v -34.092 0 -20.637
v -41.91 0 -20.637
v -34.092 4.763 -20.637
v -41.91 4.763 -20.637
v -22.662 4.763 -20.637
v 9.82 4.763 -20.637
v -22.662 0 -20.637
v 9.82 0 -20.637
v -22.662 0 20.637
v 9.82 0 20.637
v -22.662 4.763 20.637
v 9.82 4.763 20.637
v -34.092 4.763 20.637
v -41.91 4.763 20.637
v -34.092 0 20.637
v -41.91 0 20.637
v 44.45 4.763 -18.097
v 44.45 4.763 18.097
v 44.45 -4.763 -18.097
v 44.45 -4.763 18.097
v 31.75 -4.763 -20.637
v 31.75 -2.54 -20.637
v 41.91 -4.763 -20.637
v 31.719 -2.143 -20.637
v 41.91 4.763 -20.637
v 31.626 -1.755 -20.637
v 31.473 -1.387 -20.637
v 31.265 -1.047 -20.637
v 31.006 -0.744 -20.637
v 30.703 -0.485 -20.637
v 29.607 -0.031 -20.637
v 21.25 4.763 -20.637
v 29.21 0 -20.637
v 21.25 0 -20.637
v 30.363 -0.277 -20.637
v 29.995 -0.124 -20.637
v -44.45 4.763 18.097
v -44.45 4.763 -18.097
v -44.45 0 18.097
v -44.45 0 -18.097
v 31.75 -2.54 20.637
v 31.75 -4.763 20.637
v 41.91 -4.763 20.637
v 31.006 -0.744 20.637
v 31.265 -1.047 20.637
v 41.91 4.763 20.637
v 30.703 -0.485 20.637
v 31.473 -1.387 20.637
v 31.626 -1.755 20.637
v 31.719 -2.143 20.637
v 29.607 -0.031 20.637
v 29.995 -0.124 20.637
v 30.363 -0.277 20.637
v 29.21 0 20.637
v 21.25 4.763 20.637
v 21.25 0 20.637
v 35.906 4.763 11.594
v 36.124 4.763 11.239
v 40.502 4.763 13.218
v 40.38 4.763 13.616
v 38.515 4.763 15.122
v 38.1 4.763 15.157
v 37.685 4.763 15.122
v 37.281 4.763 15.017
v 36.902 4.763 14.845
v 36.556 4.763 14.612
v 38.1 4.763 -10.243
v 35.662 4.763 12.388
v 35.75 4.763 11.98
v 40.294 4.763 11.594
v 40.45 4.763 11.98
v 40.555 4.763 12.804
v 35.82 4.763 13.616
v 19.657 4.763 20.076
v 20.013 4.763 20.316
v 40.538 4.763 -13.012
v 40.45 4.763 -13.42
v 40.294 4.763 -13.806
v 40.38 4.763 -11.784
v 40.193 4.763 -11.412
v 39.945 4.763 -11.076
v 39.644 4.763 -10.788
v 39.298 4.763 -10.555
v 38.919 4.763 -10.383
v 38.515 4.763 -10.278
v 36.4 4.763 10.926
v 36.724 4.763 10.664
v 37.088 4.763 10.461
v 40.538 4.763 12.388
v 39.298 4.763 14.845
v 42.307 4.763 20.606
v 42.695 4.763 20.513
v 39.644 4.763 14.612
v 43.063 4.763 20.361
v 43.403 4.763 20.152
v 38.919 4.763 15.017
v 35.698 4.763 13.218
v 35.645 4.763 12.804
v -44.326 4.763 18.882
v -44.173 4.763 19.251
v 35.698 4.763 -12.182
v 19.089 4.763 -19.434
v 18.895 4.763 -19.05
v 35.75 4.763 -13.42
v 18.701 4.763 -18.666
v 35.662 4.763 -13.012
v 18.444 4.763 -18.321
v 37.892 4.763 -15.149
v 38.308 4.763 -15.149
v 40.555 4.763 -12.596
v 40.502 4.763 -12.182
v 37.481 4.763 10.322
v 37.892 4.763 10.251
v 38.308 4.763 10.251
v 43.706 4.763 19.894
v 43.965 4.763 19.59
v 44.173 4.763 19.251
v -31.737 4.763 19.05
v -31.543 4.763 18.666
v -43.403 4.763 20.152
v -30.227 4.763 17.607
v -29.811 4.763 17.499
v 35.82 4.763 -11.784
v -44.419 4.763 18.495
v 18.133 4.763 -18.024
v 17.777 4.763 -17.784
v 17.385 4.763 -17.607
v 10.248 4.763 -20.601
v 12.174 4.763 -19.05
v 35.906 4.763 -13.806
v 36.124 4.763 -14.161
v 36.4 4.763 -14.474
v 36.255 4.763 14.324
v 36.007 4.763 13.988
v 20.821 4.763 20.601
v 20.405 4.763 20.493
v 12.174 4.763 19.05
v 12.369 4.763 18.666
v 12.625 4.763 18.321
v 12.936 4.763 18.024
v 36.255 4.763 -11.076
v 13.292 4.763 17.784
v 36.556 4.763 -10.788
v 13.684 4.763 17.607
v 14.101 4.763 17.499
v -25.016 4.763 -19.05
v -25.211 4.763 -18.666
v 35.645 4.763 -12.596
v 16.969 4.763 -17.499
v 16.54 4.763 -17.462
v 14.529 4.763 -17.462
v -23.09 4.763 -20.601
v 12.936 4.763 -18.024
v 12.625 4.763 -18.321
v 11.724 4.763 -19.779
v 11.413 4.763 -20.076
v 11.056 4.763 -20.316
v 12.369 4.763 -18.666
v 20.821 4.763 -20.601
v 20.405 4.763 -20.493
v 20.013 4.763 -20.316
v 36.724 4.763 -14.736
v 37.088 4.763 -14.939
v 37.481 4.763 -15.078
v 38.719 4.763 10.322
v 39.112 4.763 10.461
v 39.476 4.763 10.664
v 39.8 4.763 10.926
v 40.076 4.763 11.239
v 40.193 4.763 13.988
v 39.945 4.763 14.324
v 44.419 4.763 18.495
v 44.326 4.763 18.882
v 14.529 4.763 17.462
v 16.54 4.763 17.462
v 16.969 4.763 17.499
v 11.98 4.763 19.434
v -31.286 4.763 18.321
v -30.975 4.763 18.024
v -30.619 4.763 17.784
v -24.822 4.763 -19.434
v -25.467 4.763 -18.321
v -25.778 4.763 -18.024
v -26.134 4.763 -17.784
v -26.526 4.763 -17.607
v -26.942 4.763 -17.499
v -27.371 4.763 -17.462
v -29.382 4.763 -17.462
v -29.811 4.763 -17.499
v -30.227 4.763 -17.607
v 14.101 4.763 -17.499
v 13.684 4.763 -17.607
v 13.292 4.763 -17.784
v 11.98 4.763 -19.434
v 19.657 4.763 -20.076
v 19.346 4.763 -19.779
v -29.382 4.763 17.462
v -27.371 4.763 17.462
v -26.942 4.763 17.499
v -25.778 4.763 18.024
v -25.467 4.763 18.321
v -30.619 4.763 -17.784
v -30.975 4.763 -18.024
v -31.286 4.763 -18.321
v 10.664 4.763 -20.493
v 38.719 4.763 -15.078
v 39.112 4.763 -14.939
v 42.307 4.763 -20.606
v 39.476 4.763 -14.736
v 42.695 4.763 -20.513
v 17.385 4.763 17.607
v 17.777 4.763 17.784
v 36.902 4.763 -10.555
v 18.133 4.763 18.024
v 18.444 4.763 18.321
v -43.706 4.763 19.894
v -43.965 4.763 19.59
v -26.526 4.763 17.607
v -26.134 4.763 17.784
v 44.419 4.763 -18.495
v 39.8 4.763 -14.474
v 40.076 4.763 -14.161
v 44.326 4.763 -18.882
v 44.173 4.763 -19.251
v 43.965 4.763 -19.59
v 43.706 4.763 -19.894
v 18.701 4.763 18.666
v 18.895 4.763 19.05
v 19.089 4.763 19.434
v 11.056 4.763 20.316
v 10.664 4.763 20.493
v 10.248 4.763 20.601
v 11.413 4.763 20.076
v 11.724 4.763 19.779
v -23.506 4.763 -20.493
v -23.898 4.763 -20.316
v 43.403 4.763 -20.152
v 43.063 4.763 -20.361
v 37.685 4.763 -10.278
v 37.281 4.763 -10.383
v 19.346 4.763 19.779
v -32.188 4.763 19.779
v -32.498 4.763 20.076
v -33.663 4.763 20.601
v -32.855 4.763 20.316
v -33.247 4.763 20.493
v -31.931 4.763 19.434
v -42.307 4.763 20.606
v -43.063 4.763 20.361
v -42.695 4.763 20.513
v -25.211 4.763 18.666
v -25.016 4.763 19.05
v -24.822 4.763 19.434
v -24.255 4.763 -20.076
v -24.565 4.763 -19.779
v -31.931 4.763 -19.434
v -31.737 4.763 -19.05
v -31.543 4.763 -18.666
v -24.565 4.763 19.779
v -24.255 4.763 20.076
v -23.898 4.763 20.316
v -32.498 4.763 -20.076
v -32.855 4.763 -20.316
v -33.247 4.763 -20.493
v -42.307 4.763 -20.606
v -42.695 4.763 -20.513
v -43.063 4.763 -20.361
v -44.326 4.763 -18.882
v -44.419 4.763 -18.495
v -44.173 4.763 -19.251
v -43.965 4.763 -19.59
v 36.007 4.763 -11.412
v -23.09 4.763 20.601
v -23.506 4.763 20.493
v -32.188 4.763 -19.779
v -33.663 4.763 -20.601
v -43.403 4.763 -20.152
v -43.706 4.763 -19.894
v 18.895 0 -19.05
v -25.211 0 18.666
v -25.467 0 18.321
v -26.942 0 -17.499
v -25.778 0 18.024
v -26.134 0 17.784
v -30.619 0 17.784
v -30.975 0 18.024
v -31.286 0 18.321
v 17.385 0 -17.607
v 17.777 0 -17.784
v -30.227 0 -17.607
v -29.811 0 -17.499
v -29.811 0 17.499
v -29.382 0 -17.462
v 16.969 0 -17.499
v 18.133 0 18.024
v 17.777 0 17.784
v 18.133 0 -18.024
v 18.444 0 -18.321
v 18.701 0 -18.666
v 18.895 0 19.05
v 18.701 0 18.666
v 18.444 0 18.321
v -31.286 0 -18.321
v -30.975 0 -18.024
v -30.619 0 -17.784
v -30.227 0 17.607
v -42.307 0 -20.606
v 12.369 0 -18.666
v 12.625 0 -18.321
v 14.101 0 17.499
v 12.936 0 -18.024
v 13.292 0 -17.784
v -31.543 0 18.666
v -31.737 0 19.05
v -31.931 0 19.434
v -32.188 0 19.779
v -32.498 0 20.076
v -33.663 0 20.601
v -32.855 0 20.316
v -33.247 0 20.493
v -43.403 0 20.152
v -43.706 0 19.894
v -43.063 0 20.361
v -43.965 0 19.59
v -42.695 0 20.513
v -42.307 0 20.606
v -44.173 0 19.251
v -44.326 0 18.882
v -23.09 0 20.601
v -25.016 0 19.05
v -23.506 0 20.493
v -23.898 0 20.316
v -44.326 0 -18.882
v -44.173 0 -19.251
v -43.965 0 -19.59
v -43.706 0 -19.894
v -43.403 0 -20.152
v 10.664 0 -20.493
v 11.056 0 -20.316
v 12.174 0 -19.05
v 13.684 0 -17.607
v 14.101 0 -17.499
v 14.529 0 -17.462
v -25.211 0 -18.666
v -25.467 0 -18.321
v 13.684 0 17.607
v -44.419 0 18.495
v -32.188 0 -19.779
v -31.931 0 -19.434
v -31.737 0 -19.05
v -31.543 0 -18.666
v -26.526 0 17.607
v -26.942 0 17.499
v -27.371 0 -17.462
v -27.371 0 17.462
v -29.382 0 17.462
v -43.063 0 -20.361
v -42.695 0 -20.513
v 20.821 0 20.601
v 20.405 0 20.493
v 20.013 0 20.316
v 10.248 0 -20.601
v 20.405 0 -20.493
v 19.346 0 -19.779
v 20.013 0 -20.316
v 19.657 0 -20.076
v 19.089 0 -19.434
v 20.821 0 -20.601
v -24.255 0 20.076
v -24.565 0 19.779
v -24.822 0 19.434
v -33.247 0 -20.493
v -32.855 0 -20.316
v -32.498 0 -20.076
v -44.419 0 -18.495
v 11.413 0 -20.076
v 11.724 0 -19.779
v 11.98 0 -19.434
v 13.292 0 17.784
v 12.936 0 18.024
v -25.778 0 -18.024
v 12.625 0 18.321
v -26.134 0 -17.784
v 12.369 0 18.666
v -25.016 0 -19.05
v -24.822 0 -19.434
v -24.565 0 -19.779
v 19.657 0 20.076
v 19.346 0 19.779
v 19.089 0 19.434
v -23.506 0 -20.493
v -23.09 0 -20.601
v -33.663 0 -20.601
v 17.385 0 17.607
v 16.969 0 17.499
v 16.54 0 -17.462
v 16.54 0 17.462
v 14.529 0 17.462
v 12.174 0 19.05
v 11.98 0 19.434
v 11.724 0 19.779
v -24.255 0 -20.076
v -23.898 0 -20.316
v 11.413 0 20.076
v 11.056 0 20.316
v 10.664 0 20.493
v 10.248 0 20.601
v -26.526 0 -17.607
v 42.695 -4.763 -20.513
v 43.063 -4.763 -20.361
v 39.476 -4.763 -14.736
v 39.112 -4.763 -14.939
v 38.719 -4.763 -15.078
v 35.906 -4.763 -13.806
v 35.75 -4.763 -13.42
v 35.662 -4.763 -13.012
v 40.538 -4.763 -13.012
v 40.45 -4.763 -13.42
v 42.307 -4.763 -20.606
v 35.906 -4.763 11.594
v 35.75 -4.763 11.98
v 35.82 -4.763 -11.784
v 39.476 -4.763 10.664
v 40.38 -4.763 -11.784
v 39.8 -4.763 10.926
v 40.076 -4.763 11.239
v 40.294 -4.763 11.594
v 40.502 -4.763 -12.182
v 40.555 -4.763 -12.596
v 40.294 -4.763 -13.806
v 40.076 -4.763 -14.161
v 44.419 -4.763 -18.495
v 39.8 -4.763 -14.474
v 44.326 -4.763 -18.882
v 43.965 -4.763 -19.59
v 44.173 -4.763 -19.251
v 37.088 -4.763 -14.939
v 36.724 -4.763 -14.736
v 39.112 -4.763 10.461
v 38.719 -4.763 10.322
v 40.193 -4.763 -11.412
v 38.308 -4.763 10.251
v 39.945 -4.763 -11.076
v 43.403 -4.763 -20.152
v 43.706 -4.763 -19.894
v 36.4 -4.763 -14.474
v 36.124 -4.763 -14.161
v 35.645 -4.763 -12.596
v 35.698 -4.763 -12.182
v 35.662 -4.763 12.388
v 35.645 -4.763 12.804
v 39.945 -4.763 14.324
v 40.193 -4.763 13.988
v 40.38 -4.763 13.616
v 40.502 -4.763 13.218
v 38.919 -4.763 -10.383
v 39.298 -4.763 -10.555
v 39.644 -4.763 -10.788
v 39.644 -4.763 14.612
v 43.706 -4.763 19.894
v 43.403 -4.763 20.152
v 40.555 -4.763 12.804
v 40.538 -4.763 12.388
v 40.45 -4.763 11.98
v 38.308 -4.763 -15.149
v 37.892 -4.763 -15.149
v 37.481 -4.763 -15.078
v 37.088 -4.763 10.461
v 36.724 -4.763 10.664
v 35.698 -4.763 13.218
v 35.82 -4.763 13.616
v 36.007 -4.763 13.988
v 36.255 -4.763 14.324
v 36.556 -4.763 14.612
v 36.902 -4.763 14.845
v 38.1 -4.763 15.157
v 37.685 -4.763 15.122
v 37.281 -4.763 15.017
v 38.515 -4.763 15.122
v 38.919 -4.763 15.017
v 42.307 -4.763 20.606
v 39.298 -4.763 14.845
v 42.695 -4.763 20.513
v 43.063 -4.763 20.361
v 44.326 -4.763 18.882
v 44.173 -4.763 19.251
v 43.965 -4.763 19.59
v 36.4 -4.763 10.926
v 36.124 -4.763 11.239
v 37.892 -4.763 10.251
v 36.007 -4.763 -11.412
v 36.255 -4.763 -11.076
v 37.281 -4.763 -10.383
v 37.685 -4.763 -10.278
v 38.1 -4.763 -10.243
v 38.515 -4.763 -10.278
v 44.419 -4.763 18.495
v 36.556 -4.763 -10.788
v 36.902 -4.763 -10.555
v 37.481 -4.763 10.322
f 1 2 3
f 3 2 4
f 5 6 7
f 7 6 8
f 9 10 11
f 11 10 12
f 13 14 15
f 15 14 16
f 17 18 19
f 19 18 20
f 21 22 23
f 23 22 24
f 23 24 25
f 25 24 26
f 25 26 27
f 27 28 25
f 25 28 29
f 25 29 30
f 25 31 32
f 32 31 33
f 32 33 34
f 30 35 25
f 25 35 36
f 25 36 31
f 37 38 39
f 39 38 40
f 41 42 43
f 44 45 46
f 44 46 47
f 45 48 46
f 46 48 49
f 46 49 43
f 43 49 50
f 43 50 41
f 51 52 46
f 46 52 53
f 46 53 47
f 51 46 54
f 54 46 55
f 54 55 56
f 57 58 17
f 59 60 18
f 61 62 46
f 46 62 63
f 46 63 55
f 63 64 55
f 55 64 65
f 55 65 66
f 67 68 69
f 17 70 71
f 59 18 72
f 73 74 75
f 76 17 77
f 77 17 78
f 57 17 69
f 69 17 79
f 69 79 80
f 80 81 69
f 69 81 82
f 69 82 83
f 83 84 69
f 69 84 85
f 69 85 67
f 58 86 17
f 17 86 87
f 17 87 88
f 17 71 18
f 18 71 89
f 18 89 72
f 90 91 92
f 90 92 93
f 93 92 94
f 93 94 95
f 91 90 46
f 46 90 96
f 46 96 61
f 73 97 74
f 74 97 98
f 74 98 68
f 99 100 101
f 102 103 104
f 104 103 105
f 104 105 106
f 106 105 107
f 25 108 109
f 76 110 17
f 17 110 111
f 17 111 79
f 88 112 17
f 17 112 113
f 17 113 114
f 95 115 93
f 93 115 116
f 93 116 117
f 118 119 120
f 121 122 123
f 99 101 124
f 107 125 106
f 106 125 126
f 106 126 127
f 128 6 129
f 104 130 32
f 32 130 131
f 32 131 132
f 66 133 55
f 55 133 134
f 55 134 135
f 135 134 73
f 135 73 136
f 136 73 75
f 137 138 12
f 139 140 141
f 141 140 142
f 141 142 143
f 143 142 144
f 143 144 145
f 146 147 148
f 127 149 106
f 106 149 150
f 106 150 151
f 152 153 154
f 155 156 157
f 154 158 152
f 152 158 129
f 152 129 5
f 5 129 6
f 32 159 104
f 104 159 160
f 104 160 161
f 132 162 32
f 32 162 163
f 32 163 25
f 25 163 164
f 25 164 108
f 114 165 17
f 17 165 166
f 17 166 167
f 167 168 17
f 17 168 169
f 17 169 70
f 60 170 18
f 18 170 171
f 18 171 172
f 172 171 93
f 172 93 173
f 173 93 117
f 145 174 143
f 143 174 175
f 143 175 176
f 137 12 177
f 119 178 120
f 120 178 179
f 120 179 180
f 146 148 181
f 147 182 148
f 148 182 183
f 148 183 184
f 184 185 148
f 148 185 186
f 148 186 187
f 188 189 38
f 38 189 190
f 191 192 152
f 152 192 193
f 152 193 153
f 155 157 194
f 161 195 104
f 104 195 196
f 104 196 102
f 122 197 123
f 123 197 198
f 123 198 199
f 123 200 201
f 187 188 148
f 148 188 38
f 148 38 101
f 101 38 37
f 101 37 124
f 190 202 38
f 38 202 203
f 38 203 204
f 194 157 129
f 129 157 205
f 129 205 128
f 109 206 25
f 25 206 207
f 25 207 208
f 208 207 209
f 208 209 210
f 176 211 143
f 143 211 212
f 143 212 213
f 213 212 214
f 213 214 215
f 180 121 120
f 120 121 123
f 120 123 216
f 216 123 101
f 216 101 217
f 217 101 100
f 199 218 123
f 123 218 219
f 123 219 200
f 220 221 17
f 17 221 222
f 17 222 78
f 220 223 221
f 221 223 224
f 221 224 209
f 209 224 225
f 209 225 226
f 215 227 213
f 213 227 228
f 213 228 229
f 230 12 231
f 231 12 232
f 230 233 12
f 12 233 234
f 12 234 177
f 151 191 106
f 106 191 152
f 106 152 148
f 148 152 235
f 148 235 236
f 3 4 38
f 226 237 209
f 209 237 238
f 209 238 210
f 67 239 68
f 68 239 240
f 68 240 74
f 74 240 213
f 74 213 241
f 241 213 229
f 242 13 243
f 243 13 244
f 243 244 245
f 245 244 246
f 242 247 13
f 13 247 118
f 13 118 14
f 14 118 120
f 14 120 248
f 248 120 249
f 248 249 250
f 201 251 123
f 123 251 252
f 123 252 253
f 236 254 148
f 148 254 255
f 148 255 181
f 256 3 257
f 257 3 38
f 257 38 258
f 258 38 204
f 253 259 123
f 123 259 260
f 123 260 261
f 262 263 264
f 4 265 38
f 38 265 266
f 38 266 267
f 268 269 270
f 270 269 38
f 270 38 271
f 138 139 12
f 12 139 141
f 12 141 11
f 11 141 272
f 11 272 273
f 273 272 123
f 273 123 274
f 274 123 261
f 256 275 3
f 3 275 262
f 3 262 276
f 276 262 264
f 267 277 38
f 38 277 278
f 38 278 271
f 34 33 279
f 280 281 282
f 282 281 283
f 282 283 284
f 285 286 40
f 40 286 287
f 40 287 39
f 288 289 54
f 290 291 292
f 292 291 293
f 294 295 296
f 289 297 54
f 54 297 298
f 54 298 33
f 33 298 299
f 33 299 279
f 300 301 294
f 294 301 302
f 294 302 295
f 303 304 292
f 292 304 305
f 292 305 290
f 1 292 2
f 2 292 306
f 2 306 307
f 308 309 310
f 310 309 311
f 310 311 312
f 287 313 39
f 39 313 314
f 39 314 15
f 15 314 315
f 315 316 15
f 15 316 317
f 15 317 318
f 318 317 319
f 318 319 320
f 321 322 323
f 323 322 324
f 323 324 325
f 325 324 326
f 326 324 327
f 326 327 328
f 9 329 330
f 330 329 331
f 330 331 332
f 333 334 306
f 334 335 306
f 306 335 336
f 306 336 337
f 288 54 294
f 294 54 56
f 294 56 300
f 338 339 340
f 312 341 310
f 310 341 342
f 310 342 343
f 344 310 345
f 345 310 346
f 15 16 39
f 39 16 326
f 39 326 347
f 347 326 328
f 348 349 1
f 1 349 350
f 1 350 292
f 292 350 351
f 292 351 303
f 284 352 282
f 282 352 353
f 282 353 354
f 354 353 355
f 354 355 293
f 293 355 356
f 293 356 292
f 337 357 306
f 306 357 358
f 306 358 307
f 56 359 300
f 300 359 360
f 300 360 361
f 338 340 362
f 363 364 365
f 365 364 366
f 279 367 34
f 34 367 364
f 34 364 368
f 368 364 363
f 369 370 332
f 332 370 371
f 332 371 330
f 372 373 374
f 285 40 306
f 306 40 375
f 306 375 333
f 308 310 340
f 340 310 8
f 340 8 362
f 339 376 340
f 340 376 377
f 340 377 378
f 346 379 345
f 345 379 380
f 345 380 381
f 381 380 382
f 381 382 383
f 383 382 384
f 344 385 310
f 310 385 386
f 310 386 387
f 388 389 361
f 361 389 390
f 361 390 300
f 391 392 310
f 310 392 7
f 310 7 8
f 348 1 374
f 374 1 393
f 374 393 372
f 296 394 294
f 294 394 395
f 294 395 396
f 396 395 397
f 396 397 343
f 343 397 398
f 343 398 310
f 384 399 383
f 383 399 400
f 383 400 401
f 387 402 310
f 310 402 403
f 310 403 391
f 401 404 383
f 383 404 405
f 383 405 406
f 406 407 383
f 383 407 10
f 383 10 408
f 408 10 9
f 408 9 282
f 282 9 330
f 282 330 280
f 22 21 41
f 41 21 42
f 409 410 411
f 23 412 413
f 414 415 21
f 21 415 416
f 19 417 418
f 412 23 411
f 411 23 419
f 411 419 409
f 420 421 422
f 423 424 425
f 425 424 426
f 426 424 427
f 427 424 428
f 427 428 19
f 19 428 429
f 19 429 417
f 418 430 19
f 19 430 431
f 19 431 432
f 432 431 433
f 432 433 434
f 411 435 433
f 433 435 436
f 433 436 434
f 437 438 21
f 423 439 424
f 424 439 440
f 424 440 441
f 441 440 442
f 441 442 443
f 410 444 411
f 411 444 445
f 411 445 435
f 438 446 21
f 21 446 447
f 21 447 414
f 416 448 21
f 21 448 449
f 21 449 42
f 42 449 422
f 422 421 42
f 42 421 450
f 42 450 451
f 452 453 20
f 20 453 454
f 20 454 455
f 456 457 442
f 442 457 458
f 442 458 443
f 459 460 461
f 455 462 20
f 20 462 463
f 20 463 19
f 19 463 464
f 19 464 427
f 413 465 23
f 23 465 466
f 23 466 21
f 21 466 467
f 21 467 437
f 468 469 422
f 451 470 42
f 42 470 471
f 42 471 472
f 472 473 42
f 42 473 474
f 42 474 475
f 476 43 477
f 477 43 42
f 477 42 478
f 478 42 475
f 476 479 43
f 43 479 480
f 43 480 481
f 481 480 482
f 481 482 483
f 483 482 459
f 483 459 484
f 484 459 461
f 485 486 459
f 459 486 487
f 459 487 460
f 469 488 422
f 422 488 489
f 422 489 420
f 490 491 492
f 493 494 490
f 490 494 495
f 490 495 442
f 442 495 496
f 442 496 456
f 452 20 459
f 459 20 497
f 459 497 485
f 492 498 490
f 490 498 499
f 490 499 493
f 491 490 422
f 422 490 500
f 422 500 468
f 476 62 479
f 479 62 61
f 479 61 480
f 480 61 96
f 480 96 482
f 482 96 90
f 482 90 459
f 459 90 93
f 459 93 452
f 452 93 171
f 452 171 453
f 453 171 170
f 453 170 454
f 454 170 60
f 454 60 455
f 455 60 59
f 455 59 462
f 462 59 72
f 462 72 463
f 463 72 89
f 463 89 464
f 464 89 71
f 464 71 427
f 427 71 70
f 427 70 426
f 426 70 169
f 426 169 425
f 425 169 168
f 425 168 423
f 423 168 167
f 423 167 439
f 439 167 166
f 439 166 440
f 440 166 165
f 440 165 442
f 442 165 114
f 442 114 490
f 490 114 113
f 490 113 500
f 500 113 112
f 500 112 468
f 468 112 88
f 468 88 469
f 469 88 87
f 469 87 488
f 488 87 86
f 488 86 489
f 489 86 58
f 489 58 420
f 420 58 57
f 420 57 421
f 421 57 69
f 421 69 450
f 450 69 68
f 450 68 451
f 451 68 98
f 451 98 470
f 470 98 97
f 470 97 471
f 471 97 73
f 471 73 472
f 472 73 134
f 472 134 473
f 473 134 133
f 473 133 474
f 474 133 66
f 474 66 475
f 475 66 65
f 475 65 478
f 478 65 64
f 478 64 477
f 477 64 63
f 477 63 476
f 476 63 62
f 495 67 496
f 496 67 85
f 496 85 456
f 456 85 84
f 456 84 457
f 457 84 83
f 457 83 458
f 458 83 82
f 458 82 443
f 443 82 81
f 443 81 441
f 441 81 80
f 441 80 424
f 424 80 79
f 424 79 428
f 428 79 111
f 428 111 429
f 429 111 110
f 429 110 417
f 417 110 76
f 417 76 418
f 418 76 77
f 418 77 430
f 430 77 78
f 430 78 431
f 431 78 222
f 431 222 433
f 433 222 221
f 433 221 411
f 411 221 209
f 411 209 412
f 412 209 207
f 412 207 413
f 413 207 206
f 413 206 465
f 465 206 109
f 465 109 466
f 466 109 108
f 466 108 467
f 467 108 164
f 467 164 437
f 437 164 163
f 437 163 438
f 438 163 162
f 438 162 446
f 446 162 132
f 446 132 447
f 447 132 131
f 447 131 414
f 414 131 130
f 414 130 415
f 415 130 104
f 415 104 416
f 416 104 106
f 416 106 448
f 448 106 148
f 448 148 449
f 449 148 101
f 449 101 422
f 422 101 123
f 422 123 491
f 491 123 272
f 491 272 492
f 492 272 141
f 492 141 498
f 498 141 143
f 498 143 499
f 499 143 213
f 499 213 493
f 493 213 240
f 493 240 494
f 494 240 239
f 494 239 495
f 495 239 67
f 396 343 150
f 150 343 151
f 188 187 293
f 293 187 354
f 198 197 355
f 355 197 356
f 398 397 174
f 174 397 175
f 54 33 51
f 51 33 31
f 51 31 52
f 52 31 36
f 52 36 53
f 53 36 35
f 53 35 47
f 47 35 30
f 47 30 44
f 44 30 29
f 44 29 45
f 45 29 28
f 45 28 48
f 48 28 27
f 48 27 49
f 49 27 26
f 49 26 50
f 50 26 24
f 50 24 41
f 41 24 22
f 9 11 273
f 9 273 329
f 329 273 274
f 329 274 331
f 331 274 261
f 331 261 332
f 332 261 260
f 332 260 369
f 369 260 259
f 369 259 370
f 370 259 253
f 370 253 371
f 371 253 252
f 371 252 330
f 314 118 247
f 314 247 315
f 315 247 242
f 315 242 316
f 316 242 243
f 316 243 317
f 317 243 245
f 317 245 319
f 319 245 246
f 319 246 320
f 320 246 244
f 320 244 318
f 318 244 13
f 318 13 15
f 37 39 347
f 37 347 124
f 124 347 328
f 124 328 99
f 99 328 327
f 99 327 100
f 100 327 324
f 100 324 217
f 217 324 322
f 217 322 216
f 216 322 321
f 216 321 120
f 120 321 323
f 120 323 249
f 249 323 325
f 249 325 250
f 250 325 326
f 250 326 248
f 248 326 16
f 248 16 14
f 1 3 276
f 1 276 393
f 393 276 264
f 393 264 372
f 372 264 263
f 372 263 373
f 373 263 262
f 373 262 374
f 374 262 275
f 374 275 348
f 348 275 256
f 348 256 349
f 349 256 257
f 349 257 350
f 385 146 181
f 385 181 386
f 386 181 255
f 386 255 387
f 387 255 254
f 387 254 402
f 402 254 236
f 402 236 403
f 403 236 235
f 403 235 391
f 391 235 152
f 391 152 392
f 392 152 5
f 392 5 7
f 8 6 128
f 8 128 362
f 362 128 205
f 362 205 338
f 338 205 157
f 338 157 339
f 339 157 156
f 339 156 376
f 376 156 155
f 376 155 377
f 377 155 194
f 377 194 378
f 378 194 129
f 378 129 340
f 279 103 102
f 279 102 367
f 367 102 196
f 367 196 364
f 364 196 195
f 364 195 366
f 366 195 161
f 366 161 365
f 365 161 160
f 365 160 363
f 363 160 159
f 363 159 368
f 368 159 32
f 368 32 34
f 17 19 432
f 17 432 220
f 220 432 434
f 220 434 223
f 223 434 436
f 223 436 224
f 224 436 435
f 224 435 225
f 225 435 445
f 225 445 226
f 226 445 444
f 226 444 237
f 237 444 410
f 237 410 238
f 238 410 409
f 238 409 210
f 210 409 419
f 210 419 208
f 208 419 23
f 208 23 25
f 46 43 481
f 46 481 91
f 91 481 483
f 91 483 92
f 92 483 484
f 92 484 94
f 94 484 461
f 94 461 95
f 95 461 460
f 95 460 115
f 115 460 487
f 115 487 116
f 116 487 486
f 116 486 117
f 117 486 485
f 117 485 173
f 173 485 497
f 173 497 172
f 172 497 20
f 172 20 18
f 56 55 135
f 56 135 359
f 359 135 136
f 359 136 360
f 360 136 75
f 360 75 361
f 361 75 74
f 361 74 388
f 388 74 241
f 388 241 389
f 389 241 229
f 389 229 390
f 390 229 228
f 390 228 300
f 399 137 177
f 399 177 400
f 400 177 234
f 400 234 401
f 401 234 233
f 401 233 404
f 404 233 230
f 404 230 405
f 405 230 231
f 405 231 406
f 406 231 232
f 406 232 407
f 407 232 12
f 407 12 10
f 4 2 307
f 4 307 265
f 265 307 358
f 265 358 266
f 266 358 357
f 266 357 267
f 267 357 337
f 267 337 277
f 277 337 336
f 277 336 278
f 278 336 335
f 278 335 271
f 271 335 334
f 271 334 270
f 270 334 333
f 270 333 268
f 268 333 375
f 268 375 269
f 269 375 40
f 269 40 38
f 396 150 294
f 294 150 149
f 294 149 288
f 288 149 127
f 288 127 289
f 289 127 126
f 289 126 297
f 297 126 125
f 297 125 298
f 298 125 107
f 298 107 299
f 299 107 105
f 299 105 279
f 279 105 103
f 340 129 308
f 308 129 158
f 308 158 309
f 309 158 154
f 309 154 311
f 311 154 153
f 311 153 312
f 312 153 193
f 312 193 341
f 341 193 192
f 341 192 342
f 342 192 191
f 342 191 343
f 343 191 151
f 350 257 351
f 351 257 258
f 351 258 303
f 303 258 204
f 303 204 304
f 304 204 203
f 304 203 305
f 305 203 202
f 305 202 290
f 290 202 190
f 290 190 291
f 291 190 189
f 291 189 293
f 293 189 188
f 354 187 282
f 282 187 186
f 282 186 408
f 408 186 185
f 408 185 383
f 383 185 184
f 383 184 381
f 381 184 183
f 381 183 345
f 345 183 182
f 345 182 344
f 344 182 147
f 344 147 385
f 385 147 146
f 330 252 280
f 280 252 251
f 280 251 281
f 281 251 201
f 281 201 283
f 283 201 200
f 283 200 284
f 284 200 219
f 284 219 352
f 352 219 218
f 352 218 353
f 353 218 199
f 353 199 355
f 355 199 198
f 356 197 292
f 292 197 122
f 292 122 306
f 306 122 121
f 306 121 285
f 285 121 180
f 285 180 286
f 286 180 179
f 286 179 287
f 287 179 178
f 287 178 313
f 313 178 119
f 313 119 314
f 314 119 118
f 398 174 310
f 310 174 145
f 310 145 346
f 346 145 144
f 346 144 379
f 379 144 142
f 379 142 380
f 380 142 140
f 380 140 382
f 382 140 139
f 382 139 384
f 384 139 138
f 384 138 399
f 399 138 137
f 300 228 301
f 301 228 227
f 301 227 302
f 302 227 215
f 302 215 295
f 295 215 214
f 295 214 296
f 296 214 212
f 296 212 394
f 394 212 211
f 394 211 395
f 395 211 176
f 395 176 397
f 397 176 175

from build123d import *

# Parameters (mm, degrees)
SKETCH1_W                    = 88.9
SKETCH1_H                    = 41.275
BOSS_EXTRUDE1_DEPTH          = 4.7625
SKETCH3_W                    = 12.7
SKETCH3_H                    = 41.275
BOSS_EXTRUDE2_DEPTH          = 4.7625
F_10_0_1935_DIAMETER_HOLE1_D = 4.9149
SKETCH9_W                    = 6.35
SKETCH9_H                    = 3.175
CUT_EXTRUDE1_DEPTH           = 50.924287989
FILLET1_R                    = 2.54
FILLET2_R                    = 2.54


with BuildPart() as part:
    # Sketch1 → Boss-Extrude1 (new body)
    with BuildSketch(Plane(origin=(0, 0, 0), x_dir=(1, 0, 0), z_dir=(0, 1, 0))):
        Rectangle(SKETCH1_W, SKETCH1_H)
    extrude(amount=BOSS_EXTRUDE1_DEPTH)

    # Sketch3 → Boss-Extrude2 (add)
    with BuildSketch(Plane.XZ):
        with Locations((38.1, 0)):
            Rectangle(SKETCH3_W, SKETCH3_H)
    extrude(amount=BOSS_EXTRUDE2_DEPTH)

    # #10 (0.1935) Diameter Hole1 (through all)
    with Locations(Plane(origin=(0, 4.7625, 0), x_dir=(1, 0, 0), z_dir=(0, 1, 0))):
        with Locations((38.1, 12.7), (38.1, -12.7)):
            Hole(F_10_0_1935_DIAMETER_HOLE1_D / 2)

    # Sketch9 → Cut-Extrude1 (cut, through all)
    with BuildSketch(Plane(origin=(0, 4.7625, 0), x_dir=(1, 0, 0), z_dir=(0, 1, 0))):
        with Locations((15.534707564, 19.05)):
            Rectangle(SKETCH9_W, SKETCH9_H)
        with Locations((-28.3765625, 19.05)):
            Rectangle(SKETCH9_W, SKETCH9_H)
        with Locations((-28.3765625, -19.05)):
            Rectangle(SKETCH9_W, SKETCH9_H)
        with Locations((15.534707564, -19.05)):
            Rectangle(SKETCH9_W, SKETCH9_H)
    extrude(amount=-CUT_EXTRUDE1_DEPTH, mode=Mode.SUBTRACT)

    # Fillet1
    fillet1_edges = [part.edges().sort_by_distance(p)[0] for p in [
        (31.75, 0, 0),
        (12.359707564, 2.38125, 20.6375),
        (18.709707564, 2.38125, 20.6375),
        (-31.5515625, 2.38125, 20.6375),
        (-25.2015625, 2.38125, 20.6375),
        (44.45, 0, 20.6375),
        (-44.45, 2.38125, 20.6375),
        (-31.5515625, 2.38125, -20.6375),
        (-25.2015625, 2.38125, -20.6375),
        (-44.45, 2.38125, -20.6375),
        (44.45, 0, -20.6375),
        (12.359707564, 2.38125, -20.6375),
        (18.709707564, 2.38125, -20.6375),
    ]]
    fillet(fillet1_edges, radius=FILLET1_R)

    # Fillet2
    fillet2_edges = [part.edges().sort_by_distance(p)[0] for p in [
        (18.709707564, 2.38125, -17.4625),
        (12.359707564, 2.38125, -17.4625),
        (-31.5515625, 2.38125, -17.4625),
        (-25.2015625, 2.38125, -17.4625),
        (-25.2015625, 2.38125, 17.4625),
        (-31.5515625, 2.38125, 17.4625),
        (12.359707564, 2.38125, 17.4625),
        (18.709707564, 2.38125, 17.4625),
    ]]
    fillet(fillet2_edges, radius=FILLET2_R)


solid = part.part
